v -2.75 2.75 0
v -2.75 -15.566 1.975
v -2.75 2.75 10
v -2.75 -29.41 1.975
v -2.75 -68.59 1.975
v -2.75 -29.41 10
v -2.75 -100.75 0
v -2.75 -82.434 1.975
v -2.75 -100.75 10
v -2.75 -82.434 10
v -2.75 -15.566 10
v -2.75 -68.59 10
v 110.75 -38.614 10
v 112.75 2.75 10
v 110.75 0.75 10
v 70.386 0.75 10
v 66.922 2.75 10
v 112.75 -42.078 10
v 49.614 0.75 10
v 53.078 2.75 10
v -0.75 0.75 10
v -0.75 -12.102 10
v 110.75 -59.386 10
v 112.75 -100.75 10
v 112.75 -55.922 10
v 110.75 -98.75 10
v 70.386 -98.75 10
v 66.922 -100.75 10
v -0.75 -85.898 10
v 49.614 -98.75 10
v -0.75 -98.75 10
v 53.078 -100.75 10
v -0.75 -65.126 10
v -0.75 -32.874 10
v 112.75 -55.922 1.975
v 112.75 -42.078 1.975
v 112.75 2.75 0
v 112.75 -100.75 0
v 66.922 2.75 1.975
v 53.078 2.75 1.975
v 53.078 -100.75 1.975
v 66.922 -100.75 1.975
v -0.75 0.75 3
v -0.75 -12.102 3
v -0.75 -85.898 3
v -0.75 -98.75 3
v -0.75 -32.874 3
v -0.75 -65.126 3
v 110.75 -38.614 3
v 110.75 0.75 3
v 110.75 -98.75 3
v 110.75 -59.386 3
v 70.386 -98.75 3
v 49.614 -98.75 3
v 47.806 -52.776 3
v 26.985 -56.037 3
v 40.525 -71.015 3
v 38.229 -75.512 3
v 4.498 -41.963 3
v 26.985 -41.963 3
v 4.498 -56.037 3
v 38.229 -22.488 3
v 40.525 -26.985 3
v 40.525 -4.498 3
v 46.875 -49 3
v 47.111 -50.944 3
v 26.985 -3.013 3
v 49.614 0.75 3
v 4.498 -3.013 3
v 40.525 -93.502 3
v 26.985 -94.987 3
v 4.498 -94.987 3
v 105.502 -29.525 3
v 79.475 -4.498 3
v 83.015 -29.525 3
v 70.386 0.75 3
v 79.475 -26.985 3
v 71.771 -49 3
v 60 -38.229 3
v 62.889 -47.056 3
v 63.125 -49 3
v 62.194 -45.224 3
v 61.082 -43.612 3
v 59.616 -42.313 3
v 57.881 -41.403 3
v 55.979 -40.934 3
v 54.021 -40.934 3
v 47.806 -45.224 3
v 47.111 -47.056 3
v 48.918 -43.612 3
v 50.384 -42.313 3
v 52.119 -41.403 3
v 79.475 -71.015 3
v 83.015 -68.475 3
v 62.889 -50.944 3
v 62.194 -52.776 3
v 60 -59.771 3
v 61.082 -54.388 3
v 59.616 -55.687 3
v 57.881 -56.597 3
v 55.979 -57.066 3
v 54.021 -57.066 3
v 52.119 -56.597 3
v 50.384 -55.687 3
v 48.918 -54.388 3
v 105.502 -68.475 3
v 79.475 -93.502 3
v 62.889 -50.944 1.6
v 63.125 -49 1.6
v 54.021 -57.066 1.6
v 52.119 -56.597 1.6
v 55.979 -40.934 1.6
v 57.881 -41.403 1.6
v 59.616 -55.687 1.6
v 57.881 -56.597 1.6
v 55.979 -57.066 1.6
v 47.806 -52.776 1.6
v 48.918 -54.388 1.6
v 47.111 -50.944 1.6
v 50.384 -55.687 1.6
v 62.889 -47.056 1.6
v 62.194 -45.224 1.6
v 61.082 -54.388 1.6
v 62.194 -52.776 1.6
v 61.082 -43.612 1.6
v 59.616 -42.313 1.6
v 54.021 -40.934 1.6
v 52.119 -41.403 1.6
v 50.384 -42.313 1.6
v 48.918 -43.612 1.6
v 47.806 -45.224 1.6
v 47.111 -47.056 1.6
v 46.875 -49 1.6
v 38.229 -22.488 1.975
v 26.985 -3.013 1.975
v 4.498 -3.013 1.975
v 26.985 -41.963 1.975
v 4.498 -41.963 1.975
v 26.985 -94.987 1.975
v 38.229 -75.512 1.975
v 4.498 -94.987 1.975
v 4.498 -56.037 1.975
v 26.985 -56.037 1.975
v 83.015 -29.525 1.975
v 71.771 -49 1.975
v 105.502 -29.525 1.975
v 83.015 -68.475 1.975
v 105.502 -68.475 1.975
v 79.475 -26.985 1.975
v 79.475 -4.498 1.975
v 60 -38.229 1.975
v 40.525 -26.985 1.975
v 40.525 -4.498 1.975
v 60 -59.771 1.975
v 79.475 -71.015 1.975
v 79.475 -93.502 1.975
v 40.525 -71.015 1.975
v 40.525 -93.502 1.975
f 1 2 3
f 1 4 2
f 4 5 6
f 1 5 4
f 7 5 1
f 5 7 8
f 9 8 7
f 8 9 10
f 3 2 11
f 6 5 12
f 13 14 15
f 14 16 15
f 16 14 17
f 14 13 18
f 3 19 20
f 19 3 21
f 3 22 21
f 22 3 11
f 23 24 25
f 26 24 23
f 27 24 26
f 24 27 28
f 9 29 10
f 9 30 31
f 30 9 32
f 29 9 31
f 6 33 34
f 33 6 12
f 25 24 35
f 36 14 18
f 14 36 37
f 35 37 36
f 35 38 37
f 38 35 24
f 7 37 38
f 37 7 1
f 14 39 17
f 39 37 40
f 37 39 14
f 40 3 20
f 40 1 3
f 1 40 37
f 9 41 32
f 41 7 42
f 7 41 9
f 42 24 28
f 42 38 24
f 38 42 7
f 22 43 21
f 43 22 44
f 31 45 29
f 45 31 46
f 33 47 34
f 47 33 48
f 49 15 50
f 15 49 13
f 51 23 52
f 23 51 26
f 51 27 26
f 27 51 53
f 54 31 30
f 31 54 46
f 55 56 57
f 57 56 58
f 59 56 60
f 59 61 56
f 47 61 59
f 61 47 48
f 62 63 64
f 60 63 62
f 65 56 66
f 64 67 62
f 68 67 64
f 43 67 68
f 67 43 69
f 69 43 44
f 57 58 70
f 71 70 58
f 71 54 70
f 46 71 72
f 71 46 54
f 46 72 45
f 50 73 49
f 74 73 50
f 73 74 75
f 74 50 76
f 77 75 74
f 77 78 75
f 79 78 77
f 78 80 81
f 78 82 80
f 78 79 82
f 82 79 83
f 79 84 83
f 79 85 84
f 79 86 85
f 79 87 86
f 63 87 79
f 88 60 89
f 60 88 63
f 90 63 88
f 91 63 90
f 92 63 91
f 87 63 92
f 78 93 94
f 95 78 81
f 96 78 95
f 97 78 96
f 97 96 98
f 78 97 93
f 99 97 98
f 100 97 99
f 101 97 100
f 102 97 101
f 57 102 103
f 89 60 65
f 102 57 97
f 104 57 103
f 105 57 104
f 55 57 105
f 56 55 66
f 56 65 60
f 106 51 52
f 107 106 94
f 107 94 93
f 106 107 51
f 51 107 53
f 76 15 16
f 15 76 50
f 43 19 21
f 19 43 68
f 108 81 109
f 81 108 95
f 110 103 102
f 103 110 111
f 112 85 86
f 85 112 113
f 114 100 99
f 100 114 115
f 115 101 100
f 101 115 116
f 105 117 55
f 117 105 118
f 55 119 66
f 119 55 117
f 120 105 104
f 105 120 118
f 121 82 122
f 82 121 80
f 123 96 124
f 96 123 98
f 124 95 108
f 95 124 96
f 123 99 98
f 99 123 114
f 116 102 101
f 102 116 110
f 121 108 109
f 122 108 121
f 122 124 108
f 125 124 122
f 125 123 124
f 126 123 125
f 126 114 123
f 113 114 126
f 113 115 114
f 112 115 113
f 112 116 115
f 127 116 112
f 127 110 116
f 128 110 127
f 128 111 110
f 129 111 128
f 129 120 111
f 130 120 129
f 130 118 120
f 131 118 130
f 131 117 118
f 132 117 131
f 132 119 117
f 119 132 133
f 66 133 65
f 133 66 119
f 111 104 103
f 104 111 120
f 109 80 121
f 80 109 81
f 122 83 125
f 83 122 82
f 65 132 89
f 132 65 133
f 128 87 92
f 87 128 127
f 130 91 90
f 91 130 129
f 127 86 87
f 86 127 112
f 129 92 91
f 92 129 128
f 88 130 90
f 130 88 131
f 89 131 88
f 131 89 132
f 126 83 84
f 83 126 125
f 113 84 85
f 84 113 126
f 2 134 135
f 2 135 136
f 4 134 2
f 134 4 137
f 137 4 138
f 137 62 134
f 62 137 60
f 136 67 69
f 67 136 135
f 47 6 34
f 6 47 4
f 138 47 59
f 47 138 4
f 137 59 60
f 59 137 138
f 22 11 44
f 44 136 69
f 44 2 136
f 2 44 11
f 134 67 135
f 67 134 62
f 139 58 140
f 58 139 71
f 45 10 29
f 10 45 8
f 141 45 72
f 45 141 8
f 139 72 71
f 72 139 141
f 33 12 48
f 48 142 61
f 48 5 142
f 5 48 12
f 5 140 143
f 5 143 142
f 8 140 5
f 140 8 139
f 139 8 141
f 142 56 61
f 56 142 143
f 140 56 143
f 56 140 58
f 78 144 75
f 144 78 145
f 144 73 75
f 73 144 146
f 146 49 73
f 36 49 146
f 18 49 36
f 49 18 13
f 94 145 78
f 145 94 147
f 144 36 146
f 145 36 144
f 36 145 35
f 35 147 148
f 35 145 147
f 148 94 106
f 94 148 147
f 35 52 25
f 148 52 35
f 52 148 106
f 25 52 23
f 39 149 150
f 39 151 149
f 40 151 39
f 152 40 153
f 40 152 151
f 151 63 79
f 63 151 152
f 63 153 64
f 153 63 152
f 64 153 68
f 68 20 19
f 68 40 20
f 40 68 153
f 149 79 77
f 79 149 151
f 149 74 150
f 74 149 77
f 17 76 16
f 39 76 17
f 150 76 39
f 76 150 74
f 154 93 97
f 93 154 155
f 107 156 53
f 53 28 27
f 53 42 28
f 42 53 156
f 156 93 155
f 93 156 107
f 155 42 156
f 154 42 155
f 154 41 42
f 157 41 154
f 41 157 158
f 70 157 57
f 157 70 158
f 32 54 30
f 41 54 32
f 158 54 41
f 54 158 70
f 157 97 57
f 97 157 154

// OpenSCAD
// file: HexPileLib.scad
module LeftPile(totalHeight, singlePileHeight, singlePileDiameter, pileCount){
    pileHeight = (pileCount * singlePileHeight) + .5;
    offset = singlePileDiameter * .15;
    translate([singlePileDiameter/2 - offset, singlePileDiameter/2, totalHeight - pileHeight])
        cylinder(pileHeight, d=singlePileDiameter, $fn=6);
}

module RightPile(totalHeight, singlePileHeight, singlePileDiameter, pileCount){
    translate([0, singlePileDiameter, 0])
        rotate([0, 0, 180])
            LeftPile(totalHeight, singlePileHeight, singlePileDiameter, pileCount);
}

module BottomPile(totalHeight, singlePileHeight, singlePileDiameter, pileCount){
    translate([singlePileDiameter, 0, 0])
        rotate([0, 0, 90])
            LeftPile(totalHeight, singlePileHeight, singlePileDiameter, pileCount);
}

module TopPile(totalHeight, singlePileHeight, singlePileDiameter, pileCount){
        rotate([0, 0, 270])
            LeftPile(totalHeight, singlePileHeight, singlePileDiameter, pileCount);
}
// file: ColonistsPlacePileLib.scad
include<HexPileLib.scad>
//25.82 by 32.82 by 2.15
singlePlacePileHeight = 2.15;
//flat to flat = d = 38.15
//D = d * 2/rt(3)
d = 38.15 + .8;
D = d * 2/sqrt(3);
singlePlacePileDiameter = D;

module LeftPlacePile(totalHeight, placePileCount){
    LeftPile(
        totalHeight,
        singlePlacePileHeight,
        singlePlacePileDiameter,
        placePileCount);
}

module RightPlacePile(totalHeight, placePileCount){
    RightPile(
        totalHeight,
        singlePlacePileHeight,
        singlePlacePileDiameter,
        placePileCount);
}

module BottomPlacePile(totalHeight, placePileCount){
    BottomPile(
        totalHeight,
        singlePlacePileHeight,
        singlePlacePileDiameter,
        placePileCount);
}

module TopPlacePile(totalHeight, placePileCount){
    TopPile(
        totalHeight,
        singlePlacePileHeight,
        singlePlacePileDiameter,
        placePileCount);
}

function placePileHeight(placePileCount) =
    (placePileCount * singlePlacePileHeight) + .5;

function actualPlacePileWidth() = singlePlacePileDiameter * .85;
    
// main file
include<ColonistsPlacePileLib.scad>
washerDiameter = 16.25;
washerHeight = 1.4;
lidHeight = 3;
height = 0;
wallThickness = 3;
length = 110;
width = 98;
rimThickness = 2;
rimPadding = .75;
rimHeight = 10;
marketMarkerDiameter = 14.9 + .5;
marketMarkerCount = 7;
marketMarkerHeight = 1;
portCount = 3.5;

extra = rimThickness + rimPadding;
totalLength = length + extra * 2;
totalWidth = width + extra * 2;

tileCount = 3.5;


mirror([0, 90, 0]) {

    difference() {

        translate([-extra, -extra, 0]) {
            difference() {
               
                cube([totalLength, totalWidth, rimHeight]);
                translate([rimThickness, rimThickness, lidHeight]) {
                    cube([length + rimPadding * 2, width + rimPadding * 2, rimHeight - lidHeight]);
                }
            }
        }

        //    whitespace between boxes = (total length - (# of boxes * width of boxes)) / (# of boxes + 1)
        //    position of box n = whitespace * n + 1 + width of box * (n)

            translate([length/2,  width/2, lidHeight - washerHeight])
                cylinder(washerHeight, d=washerDiameter);

            translate([0, 0, rimHeight])
                LeftPlacePile(height, tileCount);
            translate([0, width - singlePlacePileDiameter, rimHeight])
                LeftPlacePile(height, tileCount);
            translate([length, width/2 - singlePlacePileDiameter/2, rimHeight])
                RightPlacePile(height, tileCount);
            translate([length/2 - singlePlacePileDiameter/2 + 5, 0, rimHeight])
                BottomPlacePile(height, tileCount);
            translate([length/2 - singlePlacePileDiameter/2 + 5, width, rimHeight])
                TopPlacePile(height, tileCount);
           



    }
}
